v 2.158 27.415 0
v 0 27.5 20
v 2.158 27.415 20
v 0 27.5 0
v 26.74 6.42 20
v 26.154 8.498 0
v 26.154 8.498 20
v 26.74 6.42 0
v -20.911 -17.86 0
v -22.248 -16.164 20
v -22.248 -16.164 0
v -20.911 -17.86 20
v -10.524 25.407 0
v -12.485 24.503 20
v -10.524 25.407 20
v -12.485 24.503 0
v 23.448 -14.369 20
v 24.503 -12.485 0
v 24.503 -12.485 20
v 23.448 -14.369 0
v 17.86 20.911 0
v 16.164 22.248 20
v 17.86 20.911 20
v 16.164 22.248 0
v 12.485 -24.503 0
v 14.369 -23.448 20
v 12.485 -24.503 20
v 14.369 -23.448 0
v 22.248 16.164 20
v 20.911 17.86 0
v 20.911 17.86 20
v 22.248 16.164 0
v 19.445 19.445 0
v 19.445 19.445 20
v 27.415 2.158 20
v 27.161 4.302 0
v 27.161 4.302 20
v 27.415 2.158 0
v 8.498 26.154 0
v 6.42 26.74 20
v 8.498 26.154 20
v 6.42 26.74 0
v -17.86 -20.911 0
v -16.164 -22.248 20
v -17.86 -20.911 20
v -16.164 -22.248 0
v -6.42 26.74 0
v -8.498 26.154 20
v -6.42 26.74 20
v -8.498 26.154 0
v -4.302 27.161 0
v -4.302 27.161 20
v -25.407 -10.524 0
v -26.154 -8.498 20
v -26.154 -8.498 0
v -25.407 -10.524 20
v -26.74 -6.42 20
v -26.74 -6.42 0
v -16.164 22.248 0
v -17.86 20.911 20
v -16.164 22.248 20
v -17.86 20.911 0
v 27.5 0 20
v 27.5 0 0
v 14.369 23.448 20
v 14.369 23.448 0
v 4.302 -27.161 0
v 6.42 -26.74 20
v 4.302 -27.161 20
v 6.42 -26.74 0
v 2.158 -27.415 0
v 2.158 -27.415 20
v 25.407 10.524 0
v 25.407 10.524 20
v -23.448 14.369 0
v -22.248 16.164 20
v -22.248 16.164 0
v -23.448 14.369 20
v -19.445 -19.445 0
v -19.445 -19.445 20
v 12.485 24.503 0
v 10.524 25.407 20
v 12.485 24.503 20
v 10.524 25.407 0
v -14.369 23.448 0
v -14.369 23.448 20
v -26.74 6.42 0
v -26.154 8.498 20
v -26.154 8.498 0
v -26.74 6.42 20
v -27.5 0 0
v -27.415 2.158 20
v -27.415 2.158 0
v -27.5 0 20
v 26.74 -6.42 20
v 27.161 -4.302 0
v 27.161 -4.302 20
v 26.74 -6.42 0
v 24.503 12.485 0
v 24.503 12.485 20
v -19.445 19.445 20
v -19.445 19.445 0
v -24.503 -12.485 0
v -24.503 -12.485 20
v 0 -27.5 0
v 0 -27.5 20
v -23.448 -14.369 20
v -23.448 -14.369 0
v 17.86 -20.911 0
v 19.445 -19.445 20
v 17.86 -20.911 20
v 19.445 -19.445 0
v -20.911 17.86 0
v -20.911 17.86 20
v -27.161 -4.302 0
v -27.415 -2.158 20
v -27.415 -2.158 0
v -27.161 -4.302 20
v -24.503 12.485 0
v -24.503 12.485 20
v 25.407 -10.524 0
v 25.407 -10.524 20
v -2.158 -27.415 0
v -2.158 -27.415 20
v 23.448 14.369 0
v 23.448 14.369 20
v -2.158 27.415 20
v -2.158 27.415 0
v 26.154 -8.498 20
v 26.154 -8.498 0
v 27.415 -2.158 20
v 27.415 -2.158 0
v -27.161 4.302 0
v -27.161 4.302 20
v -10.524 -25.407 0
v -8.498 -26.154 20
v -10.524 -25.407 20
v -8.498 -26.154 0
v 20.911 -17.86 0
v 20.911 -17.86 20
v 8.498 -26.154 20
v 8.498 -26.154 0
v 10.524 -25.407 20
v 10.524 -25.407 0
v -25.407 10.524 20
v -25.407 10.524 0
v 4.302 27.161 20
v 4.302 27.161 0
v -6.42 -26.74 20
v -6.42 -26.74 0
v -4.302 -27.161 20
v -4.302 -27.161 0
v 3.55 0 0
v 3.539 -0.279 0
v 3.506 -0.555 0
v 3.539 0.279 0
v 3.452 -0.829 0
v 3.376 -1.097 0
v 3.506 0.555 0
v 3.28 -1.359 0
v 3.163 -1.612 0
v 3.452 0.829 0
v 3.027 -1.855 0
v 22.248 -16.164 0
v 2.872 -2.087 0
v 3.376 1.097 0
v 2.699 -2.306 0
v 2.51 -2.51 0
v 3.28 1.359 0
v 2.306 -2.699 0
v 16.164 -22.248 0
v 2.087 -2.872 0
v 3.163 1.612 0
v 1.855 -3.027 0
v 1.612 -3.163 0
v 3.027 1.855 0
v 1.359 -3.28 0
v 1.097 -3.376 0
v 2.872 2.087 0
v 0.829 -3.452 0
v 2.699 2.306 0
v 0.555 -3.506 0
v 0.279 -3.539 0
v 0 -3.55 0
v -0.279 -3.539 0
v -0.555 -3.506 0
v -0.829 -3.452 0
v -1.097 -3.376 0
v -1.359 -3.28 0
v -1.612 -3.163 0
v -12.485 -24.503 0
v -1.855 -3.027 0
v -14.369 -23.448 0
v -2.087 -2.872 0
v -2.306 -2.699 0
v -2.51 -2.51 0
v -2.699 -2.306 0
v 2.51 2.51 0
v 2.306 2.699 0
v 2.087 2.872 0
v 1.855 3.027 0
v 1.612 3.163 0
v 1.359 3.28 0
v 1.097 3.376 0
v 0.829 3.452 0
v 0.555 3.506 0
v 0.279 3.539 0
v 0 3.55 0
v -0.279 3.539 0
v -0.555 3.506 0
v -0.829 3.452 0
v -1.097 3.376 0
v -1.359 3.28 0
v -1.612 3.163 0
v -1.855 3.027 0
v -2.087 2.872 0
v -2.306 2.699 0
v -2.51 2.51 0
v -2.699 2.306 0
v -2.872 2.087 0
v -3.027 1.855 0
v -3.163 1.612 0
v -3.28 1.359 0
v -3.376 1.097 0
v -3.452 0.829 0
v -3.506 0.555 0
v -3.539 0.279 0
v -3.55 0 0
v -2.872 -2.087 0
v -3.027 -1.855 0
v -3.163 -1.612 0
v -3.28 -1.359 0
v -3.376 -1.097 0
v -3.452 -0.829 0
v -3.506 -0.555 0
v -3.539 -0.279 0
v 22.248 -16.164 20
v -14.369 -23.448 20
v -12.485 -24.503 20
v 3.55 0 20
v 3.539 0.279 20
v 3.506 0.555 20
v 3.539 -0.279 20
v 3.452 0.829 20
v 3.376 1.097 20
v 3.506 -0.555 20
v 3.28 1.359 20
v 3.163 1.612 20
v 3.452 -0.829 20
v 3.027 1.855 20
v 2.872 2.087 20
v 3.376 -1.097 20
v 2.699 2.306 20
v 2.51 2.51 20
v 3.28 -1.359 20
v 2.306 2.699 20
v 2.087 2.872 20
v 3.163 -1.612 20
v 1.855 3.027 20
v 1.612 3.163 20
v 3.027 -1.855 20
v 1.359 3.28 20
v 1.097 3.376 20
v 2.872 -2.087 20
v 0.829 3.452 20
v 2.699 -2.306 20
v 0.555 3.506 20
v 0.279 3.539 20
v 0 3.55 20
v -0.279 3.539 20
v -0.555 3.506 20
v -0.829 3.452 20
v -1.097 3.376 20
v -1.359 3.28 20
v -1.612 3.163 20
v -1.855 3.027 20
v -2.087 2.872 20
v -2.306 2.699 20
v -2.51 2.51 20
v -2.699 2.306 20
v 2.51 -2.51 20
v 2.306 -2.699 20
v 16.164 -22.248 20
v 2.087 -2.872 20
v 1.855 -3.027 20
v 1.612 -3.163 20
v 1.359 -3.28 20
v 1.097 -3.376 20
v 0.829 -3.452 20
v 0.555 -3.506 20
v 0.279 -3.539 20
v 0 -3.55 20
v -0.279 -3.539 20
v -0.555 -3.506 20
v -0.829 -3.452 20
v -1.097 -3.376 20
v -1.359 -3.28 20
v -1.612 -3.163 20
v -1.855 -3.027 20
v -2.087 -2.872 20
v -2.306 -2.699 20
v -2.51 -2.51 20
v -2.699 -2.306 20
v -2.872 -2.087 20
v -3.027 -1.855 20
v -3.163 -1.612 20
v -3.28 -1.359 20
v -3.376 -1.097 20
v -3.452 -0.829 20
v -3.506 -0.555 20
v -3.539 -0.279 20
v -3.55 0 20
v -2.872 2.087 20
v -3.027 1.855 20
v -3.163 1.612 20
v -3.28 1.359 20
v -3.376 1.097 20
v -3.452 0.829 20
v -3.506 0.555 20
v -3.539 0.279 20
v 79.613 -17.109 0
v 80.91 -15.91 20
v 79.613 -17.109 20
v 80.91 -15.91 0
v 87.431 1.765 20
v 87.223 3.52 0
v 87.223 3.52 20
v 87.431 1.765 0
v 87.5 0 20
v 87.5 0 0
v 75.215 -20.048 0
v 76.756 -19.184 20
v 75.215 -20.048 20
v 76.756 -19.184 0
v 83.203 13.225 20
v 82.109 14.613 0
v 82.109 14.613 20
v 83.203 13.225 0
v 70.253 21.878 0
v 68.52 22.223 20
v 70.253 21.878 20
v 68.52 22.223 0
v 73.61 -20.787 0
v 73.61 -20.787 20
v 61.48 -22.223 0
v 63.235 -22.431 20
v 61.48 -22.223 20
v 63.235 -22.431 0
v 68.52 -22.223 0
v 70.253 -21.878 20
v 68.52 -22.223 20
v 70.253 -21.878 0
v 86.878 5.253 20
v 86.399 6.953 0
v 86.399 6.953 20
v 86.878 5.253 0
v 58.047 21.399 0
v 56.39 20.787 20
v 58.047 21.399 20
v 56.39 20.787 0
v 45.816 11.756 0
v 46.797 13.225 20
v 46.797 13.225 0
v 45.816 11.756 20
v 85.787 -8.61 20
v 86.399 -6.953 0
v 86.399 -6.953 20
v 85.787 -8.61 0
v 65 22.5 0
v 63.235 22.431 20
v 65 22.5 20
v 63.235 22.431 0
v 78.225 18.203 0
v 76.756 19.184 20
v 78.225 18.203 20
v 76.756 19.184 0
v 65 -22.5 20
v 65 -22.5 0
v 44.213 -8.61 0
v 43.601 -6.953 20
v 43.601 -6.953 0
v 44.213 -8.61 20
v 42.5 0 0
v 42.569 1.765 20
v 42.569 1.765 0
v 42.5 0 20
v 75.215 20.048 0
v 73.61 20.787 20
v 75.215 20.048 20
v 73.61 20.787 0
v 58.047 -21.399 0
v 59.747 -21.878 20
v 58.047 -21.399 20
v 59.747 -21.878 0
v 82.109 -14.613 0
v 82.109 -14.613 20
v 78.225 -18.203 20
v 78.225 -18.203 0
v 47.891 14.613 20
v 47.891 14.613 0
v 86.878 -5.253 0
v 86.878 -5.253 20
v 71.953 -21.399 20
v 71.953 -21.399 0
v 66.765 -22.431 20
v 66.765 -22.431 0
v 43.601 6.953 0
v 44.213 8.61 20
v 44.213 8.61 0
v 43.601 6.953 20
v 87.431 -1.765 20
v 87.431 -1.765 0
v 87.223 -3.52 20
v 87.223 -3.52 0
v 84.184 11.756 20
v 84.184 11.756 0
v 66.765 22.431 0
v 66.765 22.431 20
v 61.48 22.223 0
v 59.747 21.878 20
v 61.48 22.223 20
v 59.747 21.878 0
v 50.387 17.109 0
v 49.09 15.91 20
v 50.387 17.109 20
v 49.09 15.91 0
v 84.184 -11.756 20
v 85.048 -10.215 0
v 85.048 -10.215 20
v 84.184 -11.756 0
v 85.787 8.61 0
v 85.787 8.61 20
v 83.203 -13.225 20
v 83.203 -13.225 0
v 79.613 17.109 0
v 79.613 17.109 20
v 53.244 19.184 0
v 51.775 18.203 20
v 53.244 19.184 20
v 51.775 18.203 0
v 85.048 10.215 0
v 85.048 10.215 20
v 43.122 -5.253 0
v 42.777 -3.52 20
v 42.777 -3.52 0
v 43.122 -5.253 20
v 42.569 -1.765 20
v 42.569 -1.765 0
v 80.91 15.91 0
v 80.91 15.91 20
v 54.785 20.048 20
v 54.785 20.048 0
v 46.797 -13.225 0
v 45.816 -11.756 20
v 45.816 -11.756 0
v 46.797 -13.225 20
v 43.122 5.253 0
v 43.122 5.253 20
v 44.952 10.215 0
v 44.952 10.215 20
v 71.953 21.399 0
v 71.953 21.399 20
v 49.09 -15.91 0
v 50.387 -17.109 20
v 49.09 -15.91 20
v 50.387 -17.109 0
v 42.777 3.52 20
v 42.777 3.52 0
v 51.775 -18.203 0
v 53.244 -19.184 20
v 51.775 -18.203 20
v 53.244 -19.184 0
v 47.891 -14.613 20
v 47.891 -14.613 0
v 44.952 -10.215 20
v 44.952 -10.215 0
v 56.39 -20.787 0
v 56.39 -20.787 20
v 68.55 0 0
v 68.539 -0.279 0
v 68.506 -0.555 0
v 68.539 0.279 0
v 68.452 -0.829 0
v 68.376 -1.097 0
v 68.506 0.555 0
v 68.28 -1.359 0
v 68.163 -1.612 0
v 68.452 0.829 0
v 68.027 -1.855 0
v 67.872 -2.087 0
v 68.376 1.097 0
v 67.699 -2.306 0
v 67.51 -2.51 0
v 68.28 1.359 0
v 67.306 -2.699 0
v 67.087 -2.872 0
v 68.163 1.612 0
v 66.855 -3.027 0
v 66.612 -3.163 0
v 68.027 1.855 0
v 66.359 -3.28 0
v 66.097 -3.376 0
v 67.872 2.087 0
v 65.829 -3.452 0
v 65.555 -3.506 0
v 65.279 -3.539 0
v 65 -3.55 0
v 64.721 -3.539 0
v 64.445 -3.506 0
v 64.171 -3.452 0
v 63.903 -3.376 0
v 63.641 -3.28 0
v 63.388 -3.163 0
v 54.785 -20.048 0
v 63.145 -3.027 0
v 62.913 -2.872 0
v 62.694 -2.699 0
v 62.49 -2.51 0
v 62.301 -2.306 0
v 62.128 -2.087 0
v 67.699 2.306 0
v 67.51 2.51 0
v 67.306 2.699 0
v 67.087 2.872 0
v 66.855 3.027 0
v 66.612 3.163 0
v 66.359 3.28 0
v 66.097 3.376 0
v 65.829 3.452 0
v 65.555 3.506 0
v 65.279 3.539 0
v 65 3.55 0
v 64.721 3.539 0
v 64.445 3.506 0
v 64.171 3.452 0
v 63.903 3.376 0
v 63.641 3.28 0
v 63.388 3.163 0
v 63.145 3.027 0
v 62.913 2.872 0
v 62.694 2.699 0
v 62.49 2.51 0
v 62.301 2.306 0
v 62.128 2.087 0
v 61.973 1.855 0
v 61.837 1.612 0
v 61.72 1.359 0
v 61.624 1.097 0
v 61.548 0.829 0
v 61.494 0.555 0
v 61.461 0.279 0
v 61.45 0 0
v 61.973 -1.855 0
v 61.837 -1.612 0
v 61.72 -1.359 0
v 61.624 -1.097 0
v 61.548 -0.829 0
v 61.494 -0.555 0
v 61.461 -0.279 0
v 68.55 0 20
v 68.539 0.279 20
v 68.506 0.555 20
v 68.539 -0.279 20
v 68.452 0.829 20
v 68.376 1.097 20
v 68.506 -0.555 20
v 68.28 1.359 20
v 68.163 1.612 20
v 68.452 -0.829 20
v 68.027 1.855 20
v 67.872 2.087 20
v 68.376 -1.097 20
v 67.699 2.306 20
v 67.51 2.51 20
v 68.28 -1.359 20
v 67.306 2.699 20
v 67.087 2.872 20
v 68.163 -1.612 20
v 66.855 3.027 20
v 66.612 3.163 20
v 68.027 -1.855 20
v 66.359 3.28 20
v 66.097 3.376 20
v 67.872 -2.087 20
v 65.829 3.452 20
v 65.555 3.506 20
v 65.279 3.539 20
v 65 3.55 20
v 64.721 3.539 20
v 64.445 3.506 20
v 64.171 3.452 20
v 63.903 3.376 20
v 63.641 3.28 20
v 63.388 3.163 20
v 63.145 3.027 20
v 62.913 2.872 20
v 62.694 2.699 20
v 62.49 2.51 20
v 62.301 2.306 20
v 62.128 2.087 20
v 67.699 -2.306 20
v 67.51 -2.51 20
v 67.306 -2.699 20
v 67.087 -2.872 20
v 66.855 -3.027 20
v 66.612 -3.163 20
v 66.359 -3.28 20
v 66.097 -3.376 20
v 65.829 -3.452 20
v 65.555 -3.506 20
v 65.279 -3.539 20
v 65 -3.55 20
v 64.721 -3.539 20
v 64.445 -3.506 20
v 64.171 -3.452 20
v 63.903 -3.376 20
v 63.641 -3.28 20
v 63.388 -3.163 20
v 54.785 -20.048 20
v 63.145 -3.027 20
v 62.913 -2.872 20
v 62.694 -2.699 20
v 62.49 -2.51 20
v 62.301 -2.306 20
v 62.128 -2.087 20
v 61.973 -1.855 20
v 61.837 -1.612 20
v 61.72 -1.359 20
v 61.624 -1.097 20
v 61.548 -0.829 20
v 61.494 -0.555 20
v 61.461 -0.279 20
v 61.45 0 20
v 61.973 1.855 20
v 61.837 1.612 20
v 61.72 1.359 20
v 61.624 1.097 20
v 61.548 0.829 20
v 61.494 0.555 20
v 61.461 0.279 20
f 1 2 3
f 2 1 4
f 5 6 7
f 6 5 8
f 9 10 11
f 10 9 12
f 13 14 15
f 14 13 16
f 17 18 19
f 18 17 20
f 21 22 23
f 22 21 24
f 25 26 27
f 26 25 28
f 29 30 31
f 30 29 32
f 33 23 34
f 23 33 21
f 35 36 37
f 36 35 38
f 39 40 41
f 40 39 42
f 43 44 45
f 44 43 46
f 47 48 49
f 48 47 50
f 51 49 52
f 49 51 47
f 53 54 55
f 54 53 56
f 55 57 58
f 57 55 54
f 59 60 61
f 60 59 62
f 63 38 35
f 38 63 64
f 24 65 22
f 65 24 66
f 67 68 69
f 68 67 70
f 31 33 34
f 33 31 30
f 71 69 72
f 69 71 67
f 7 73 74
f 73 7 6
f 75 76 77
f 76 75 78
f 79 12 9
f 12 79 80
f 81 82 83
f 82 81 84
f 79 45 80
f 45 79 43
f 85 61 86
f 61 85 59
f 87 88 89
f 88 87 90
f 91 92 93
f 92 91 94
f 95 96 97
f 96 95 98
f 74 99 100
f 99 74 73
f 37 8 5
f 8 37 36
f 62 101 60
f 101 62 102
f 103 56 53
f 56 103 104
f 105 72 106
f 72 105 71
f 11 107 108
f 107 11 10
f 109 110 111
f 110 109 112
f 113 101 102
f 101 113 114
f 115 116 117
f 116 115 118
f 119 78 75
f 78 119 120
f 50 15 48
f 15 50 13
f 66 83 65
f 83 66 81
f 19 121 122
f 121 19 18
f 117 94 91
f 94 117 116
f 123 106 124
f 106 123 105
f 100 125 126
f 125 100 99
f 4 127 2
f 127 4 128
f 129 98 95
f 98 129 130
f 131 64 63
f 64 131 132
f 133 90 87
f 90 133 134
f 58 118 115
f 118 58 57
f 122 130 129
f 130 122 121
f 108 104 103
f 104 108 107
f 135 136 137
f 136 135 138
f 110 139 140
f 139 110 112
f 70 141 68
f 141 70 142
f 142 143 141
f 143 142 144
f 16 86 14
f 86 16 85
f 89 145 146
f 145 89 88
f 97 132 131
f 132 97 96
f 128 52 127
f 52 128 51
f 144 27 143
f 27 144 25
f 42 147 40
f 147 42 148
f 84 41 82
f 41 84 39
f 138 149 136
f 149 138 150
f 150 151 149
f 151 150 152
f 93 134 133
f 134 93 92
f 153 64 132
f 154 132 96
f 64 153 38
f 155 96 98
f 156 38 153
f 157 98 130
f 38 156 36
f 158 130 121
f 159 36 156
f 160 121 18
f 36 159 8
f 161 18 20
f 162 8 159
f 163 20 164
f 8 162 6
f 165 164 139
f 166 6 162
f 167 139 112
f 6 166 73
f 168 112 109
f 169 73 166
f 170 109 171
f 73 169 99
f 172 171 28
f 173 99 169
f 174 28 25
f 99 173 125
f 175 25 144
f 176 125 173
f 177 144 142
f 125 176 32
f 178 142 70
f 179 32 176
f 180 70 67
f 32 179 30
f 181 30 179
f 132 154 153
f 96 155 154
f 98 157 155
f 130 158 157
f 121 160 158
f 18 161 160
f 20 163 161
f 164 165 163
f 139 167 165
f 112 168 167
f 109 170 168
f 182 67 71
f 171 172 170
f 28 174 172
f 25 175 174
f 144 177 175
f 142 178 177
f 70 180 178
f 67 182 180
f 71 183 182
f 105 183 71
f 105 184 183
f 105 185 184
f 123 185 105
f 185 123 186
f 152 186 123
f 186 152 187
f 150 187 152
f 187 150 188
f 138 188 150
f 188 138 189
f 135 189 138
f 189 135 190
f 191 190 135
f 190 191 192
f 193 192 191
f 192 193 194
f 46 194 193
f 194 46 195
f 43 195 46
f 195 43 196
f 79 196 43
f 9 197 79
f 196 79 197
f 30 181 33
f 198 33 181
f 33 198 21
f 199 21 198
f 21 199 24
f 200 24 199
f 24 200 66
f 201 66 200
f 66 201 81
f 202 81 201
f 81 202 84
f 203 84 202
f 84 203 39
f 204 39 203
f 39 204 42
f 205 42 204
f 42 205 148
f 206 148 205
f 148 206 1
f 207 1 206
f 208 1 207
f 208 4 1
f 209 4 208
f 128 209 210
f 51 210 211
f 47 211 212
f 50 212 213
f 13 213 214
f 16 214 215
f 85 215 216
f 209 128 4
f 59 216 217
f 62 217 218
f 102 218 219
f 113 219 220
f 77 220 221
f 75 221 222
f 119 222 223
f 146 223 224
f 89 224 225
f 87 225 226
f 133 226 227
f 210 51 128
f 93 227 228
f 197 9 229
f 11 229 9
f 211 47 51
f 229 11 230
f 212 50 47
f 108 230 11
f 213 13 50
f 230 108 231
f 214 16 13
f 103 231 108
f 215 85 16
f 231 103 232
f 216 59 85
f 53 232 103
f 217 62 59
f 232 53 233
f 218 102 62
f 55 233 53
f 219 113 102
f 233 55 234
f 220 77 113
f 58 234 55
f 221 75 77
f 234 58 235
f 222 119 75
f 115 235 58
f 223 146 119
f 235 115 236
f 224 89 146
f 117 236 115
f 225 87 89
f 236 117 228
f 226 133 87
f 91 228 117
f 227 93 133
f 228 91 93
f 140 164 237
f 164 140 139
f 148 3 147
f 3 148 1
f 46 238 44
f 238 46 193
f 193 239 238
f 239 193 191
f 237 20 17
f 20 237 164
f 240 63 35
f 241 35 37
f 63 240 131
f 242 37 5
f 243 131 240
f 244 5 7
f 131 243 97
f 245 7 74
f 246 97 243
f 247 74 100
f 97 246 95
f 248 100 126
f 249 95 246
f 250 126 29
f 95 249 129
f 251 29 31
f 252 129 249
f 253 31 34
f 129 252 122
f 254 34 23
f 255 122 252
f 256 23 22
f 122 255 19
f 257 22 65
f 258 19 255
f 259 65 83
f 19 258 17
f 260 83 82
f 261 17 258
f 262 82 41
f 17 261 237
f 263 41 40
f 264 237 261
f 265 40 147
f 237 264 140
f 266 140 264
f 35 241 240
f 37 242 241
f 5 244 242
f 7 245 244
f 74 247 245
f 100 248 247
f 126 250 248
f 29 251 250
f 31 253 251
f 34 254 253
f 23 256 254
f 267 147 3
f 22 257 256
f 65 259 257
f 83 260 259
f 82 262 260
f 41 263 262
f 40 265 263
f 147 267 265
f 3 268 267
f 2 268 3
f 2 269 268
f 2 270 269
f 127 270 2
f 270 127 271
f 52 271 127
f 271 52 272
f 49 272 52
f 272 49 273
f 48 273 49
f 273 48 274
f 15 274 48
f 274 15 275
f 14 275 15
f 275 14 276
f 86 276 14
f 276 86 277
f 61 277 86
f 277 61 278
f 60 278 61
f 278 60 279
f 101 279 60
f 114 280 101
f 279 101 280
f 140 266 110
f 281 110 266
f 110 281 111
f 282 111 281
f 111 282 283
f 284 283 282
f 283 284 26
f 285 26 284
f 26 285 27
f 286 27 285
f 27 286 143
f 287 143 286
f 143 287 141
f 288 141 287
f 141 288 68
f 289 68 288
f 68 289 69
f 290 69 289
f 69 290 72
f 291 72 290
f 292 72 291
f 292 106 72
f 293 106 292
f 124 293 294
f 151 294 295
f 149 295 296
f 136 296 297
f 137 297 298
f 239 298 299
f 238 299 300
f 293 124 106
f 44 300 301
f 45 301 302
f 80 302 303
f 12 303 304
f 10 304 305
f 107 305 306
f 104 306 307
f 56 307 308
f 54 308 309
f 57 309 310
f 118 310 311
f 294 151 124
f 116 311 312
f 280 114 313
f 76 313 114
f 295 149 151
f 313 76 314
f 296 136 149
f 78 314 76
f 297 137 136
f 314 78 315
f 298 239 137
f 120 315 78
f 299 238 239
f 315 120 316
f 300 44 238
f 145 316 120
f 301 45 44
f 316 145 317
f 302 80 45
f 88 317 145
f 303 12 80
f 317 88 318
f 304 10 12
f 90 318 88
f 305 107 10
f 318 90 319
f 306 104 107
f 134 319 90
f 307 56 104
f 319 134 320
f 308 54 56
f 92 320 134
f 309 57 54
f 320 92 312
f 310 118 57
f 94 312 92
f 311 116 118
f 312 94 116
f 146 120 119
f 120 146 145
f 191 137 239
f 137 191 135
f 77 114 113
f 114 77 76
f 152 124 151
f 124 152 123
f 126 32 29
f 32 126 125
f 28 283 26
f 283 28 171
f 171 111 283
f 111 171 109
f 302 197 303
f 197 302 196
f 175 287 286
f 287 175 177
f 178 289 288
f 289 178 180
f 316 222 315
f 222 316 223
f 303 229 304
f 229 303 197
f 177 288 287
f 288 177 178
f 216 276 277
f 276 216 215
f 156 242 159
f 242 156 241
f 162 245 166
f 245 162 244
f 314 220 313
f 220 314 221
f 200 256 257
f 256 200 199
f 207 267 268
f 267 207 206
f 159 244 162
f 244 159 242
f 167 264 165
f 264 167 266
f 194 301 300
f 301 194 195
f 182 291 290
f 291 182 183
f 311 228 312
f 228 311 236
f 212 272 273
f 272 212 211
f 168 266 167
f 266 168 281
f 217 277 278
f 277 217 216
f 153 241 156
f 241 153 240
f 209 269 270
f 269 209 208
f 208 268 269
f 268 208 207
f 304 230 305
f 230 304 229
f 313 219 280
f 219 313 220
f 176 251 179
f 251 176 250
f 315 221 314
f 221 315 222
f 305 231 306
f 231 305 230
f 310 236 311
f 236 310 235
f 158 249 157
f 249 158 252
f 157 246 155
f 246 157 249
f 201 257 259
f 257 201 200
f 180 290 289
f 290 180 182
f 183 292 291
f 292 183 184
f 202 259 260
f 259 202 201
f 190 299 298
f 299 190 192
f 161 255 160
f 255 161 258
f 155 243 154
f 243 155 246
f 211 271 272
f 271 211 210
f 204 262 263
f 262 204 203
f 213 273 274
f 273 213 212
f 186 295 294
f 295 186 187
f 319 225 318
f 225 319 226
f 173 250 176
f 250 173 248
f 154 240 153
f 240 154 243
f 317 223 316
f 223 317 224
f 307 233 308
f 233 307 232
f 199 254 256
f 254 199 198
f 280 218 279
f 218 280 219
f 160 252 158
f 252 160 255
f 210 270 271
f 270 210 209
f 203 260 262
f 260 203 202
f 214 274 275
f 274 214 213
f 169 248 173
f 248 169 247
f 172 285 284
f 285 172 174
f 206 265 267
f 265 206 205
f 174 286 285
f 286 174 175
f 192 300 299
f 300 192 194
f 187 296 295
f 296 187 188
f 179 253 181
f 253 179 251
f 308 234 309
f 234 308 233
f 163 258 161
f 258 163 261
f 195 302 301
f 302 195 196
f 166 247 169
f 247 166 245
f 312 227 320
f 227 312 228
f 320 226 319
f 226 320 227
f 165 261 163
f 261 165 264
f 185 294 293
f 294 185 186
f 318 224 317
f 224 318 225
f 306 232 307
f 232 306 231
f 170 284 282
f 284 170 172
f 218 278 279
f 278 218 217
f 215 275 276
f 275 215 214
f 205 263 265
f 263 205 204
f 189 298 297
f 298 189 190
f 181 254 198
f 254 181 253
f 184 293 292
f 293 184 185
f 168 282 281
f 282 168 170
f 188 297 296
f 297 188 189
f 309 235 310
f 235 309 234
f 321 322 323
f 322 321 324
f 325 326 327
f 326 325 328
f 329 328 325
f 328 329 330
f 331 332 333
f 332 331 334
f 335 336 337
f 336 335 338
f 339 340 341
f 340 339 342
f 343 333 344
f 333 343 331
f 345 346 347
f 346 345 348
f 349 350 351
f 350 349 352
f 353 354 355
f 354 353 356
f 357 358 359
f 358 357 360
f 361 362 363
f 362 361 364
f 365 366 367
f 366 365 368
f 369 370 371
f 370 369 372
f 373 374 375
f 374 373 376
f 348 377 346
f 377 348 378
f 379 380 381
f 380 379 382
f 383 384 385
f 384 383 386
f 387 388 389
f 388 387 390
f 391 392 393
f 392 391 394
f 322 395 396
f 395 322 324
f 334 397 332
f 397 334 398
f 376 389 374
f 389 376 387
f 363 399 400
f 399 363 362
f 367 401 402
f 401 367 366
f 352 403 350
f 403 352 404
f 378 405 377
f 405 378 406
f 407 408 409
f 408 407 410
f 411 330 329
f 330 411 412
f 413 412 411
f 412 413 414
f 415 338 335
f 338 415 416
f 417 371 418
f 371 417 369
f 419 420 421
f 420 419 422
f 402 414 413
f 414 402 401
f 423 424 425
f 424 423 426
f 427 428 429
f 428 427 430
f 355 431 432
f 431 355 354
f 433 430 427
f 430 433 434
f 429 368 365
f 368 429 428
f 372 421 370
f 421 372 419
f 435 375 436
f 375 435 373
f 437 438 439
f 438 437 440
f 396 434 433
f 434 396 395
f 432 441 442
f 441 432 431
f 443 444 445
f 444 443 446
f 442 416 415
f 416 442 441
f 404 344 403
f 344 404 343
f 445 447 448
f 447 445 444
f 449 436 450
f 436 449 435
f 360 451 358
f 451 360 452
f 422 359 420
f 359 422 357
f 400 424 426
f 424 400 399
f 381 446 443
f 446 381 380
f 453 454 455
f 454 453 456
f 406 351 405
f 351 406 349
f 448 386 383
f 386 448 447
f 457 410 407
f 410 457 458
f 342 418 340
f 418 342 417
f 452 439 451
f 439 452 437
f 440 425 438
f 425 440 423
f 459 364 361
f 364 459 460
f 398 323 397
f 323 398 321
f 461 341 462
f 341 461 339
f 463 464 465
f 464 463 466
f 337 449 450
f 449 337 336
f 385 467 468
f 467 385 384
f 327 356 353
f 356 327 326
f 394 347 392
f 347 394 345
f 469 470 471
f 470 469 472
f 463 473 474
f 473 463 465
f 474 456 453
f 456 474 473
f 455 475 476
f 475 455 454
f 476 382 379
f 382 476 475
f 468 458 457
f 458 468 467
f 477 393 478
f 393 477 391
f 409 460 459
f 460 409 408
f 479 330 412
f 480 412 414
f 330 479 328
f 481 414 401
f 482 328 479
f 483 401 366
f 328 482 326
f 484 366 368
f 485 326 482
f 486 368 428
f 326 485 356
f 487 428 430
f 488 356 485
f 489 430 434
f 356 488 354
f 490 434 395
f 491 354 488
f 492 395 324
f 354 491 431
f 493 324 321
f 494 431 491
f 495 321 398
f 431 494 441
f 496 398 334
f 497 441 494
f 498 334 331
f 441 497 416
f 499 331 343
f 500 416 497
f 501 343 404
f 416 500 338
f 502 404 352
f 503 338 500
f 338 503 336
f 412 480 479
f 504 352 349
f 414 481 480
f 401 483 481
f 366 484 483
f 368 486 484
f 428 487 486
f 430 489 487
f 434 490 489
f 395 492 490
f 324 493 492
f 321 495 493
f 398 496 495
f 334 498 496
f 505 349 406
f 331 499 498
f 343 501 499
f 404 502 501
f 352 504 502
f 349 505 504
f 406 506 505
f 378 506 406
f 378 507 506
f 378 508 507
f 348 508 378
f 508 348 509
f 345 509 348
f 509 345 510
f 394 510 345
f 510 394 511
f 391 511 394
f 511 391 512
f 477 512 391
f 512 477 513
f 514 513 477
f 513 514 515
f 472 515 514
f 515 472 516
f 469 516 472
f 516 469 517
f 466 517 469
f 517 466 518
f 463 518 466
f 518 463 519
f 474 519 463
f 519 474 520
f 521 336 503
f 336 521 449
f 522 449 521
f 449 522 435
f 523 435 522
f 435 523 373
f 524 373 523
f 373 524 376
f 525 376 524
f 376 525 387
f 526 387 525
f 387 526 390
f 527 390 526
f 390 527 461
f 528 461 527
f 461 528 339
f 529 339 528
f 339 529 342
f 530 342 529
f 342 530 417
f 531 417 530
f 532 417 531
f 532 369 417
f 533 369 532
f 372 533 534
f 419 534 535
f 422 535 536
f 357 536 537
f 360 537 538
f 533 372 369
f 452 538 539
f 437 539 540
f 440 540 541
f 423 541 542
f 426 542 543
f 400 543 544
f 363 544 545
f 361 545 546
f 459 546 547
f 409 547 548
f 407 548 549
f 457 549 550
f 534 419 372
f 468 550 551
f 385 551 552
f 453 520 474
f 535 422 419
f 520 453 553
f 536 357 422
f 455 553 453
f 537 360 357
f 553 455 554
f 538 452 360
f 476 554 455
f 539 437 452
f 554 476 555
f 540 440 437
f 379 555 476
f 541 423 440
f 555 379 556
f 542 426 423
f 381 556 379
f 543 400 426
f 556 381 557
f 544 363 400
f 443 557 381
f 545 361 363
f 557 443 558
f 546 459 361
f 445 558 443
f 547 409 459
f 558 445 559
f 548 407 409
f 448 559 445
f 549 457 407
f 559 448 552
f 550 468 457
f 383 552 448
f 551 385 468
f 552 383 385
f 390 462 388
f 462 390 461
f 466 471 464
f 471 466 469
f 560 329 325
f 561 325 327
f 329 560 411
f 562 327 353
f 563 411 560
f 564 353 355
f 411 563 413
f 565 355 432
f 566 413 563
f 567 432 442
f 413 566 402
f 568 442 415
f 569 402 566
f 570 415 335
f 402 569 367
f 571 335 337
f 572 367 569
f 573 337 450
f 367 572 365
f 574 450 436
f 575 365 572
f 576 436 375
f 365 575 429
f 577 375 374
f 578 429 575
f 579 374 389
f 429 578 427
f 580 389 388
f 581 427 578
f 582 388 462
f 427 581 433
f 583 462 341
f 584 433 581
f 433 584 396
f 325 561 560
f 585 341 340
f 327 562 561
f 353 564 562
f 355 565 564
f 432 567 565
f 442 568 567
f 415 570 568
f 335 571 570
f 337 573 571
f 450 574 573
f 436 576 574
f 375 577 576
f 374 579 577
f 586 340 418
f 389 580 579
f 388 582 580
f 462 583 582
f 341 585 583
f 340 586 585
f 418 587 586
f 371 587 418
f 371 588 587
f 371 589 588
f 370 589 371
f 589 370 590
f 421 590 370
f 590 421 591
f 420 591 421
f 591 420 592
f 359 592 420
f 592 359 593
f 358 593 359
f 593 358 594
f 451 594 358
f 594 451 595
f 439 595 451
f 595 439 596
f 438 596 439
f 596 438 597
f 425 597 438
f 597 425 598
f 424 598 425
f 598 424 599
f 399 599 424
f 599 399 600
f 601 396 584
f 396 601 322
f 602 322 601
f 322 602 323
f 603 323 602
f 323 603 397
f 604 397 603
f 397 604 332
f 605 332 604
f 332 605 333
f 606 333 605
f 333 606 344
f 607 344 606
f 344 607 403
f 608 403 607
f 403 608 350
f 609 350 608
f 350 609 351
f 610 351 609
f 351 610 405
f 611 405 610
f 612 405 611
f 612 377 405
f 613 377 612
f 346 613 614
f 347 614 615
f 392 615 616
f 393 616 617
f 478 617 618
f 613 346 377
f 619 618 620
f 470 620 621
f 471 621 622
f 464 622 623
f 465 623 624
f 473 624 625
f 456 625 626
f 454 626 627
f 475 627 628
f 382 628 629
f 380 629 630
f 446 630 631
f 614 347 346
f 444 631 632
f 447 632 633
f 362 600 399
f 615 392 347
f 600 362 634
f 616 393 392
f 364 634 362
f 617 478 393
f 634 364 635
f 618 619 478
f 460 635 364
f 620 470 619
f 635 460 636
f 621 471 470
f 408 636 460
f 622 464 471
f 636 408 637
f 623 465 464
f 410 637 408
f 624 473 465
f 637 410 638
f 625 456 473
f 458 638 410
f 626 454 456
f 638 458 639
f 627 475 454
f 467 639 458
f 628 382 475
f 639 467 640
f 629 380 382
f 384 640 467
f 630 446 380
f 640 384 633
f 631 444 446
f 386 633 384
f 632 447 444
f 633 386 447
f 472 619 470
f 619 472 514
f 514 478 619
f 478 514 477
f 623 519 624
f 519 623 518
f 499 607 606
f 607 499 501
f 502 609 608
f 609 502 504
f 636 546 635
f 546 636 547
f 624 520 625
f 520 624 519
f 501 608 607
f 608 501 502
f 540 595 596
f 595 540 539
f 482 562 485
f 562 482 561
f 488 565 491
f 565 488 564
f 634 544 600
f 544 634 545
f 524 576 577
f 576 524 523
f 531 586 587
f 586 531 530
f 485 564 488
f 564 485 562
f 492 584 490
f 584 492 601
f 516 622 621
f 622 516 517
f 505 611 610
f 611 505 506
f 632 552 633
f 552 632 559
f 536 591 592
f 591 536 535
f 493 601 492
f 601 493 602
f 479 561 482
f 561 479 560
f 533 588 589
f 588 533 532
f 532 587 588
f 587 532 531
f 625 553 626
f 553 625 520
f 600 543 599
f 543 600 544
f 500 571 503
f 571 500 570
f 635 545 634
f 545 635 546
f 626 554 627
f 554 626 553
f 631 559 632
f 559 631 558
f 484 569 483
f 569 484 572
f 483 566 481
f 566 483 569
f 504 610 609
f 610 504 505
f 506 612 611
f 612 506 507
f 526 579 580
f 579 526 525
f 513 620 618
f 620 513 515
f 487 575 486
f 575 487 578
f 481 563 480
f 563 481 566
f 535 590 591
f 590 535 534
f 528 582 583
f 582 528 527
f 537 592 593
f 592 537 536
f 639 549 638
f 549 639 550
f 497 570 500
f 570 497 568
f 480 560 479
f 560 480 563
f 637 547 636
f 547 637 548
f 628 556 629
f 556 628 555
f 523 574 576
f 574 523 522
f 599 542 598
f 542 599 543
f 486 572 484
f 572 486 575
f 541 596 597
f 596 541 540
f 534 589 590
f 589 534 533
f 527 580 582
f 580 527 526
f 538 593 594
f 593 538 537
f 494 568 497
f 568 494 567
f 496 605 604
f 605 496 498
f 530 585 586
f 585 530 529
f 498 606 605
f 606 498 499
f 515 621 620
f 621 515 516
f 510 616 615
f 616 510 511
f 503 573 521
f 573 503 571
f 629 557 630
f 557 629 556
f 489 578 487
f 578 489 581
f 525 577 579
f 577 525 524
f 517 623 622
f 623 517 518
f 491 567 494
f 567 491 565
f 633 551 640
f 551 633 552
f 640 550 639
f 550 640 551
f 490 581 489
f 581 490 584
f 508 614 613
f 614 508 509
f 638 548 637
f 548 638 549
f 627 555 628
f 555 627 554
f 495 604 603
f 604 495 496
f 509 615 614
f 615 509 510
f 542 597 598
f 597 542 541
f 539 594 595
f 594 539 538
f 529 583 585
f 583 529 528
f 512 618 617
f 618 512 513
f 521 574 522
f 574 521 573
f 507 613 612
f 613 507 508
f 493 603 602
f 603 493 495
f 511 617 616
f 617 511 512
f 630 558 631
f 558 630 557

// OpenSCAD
// PLA 30% fill

largerOuterDiameter     = 55.0;
largerInnerDiameter     = 7.1;
largerThickness         = 20.0;

smallerOuterDiameter    = 45.0;
smallerInnerDiameter    = 7.1;
smallerThickness        = 20.0;

manifoldCorrection      = 0.01;
manifoldCorrection2     = manifoldCorrection * 2;
$fn                     = 80;



donut(largerOuterDiameter, largerInnerDiameter, largerThickness);
translate( [65, 0, 0] )
    donut(smallerOuterDiameter, smallerInnerDiameter, smallerThickness);



module donut(outerDiameter, innerDiameter, height)
{
    difference()
    {
        cylinder(d = outerDiameter, h = height);
        translate( [0, 0, -manifoldCorrection] )
            cylinder(d = innerDiameter, h = height + manifoldCorrection2);
    }
}
